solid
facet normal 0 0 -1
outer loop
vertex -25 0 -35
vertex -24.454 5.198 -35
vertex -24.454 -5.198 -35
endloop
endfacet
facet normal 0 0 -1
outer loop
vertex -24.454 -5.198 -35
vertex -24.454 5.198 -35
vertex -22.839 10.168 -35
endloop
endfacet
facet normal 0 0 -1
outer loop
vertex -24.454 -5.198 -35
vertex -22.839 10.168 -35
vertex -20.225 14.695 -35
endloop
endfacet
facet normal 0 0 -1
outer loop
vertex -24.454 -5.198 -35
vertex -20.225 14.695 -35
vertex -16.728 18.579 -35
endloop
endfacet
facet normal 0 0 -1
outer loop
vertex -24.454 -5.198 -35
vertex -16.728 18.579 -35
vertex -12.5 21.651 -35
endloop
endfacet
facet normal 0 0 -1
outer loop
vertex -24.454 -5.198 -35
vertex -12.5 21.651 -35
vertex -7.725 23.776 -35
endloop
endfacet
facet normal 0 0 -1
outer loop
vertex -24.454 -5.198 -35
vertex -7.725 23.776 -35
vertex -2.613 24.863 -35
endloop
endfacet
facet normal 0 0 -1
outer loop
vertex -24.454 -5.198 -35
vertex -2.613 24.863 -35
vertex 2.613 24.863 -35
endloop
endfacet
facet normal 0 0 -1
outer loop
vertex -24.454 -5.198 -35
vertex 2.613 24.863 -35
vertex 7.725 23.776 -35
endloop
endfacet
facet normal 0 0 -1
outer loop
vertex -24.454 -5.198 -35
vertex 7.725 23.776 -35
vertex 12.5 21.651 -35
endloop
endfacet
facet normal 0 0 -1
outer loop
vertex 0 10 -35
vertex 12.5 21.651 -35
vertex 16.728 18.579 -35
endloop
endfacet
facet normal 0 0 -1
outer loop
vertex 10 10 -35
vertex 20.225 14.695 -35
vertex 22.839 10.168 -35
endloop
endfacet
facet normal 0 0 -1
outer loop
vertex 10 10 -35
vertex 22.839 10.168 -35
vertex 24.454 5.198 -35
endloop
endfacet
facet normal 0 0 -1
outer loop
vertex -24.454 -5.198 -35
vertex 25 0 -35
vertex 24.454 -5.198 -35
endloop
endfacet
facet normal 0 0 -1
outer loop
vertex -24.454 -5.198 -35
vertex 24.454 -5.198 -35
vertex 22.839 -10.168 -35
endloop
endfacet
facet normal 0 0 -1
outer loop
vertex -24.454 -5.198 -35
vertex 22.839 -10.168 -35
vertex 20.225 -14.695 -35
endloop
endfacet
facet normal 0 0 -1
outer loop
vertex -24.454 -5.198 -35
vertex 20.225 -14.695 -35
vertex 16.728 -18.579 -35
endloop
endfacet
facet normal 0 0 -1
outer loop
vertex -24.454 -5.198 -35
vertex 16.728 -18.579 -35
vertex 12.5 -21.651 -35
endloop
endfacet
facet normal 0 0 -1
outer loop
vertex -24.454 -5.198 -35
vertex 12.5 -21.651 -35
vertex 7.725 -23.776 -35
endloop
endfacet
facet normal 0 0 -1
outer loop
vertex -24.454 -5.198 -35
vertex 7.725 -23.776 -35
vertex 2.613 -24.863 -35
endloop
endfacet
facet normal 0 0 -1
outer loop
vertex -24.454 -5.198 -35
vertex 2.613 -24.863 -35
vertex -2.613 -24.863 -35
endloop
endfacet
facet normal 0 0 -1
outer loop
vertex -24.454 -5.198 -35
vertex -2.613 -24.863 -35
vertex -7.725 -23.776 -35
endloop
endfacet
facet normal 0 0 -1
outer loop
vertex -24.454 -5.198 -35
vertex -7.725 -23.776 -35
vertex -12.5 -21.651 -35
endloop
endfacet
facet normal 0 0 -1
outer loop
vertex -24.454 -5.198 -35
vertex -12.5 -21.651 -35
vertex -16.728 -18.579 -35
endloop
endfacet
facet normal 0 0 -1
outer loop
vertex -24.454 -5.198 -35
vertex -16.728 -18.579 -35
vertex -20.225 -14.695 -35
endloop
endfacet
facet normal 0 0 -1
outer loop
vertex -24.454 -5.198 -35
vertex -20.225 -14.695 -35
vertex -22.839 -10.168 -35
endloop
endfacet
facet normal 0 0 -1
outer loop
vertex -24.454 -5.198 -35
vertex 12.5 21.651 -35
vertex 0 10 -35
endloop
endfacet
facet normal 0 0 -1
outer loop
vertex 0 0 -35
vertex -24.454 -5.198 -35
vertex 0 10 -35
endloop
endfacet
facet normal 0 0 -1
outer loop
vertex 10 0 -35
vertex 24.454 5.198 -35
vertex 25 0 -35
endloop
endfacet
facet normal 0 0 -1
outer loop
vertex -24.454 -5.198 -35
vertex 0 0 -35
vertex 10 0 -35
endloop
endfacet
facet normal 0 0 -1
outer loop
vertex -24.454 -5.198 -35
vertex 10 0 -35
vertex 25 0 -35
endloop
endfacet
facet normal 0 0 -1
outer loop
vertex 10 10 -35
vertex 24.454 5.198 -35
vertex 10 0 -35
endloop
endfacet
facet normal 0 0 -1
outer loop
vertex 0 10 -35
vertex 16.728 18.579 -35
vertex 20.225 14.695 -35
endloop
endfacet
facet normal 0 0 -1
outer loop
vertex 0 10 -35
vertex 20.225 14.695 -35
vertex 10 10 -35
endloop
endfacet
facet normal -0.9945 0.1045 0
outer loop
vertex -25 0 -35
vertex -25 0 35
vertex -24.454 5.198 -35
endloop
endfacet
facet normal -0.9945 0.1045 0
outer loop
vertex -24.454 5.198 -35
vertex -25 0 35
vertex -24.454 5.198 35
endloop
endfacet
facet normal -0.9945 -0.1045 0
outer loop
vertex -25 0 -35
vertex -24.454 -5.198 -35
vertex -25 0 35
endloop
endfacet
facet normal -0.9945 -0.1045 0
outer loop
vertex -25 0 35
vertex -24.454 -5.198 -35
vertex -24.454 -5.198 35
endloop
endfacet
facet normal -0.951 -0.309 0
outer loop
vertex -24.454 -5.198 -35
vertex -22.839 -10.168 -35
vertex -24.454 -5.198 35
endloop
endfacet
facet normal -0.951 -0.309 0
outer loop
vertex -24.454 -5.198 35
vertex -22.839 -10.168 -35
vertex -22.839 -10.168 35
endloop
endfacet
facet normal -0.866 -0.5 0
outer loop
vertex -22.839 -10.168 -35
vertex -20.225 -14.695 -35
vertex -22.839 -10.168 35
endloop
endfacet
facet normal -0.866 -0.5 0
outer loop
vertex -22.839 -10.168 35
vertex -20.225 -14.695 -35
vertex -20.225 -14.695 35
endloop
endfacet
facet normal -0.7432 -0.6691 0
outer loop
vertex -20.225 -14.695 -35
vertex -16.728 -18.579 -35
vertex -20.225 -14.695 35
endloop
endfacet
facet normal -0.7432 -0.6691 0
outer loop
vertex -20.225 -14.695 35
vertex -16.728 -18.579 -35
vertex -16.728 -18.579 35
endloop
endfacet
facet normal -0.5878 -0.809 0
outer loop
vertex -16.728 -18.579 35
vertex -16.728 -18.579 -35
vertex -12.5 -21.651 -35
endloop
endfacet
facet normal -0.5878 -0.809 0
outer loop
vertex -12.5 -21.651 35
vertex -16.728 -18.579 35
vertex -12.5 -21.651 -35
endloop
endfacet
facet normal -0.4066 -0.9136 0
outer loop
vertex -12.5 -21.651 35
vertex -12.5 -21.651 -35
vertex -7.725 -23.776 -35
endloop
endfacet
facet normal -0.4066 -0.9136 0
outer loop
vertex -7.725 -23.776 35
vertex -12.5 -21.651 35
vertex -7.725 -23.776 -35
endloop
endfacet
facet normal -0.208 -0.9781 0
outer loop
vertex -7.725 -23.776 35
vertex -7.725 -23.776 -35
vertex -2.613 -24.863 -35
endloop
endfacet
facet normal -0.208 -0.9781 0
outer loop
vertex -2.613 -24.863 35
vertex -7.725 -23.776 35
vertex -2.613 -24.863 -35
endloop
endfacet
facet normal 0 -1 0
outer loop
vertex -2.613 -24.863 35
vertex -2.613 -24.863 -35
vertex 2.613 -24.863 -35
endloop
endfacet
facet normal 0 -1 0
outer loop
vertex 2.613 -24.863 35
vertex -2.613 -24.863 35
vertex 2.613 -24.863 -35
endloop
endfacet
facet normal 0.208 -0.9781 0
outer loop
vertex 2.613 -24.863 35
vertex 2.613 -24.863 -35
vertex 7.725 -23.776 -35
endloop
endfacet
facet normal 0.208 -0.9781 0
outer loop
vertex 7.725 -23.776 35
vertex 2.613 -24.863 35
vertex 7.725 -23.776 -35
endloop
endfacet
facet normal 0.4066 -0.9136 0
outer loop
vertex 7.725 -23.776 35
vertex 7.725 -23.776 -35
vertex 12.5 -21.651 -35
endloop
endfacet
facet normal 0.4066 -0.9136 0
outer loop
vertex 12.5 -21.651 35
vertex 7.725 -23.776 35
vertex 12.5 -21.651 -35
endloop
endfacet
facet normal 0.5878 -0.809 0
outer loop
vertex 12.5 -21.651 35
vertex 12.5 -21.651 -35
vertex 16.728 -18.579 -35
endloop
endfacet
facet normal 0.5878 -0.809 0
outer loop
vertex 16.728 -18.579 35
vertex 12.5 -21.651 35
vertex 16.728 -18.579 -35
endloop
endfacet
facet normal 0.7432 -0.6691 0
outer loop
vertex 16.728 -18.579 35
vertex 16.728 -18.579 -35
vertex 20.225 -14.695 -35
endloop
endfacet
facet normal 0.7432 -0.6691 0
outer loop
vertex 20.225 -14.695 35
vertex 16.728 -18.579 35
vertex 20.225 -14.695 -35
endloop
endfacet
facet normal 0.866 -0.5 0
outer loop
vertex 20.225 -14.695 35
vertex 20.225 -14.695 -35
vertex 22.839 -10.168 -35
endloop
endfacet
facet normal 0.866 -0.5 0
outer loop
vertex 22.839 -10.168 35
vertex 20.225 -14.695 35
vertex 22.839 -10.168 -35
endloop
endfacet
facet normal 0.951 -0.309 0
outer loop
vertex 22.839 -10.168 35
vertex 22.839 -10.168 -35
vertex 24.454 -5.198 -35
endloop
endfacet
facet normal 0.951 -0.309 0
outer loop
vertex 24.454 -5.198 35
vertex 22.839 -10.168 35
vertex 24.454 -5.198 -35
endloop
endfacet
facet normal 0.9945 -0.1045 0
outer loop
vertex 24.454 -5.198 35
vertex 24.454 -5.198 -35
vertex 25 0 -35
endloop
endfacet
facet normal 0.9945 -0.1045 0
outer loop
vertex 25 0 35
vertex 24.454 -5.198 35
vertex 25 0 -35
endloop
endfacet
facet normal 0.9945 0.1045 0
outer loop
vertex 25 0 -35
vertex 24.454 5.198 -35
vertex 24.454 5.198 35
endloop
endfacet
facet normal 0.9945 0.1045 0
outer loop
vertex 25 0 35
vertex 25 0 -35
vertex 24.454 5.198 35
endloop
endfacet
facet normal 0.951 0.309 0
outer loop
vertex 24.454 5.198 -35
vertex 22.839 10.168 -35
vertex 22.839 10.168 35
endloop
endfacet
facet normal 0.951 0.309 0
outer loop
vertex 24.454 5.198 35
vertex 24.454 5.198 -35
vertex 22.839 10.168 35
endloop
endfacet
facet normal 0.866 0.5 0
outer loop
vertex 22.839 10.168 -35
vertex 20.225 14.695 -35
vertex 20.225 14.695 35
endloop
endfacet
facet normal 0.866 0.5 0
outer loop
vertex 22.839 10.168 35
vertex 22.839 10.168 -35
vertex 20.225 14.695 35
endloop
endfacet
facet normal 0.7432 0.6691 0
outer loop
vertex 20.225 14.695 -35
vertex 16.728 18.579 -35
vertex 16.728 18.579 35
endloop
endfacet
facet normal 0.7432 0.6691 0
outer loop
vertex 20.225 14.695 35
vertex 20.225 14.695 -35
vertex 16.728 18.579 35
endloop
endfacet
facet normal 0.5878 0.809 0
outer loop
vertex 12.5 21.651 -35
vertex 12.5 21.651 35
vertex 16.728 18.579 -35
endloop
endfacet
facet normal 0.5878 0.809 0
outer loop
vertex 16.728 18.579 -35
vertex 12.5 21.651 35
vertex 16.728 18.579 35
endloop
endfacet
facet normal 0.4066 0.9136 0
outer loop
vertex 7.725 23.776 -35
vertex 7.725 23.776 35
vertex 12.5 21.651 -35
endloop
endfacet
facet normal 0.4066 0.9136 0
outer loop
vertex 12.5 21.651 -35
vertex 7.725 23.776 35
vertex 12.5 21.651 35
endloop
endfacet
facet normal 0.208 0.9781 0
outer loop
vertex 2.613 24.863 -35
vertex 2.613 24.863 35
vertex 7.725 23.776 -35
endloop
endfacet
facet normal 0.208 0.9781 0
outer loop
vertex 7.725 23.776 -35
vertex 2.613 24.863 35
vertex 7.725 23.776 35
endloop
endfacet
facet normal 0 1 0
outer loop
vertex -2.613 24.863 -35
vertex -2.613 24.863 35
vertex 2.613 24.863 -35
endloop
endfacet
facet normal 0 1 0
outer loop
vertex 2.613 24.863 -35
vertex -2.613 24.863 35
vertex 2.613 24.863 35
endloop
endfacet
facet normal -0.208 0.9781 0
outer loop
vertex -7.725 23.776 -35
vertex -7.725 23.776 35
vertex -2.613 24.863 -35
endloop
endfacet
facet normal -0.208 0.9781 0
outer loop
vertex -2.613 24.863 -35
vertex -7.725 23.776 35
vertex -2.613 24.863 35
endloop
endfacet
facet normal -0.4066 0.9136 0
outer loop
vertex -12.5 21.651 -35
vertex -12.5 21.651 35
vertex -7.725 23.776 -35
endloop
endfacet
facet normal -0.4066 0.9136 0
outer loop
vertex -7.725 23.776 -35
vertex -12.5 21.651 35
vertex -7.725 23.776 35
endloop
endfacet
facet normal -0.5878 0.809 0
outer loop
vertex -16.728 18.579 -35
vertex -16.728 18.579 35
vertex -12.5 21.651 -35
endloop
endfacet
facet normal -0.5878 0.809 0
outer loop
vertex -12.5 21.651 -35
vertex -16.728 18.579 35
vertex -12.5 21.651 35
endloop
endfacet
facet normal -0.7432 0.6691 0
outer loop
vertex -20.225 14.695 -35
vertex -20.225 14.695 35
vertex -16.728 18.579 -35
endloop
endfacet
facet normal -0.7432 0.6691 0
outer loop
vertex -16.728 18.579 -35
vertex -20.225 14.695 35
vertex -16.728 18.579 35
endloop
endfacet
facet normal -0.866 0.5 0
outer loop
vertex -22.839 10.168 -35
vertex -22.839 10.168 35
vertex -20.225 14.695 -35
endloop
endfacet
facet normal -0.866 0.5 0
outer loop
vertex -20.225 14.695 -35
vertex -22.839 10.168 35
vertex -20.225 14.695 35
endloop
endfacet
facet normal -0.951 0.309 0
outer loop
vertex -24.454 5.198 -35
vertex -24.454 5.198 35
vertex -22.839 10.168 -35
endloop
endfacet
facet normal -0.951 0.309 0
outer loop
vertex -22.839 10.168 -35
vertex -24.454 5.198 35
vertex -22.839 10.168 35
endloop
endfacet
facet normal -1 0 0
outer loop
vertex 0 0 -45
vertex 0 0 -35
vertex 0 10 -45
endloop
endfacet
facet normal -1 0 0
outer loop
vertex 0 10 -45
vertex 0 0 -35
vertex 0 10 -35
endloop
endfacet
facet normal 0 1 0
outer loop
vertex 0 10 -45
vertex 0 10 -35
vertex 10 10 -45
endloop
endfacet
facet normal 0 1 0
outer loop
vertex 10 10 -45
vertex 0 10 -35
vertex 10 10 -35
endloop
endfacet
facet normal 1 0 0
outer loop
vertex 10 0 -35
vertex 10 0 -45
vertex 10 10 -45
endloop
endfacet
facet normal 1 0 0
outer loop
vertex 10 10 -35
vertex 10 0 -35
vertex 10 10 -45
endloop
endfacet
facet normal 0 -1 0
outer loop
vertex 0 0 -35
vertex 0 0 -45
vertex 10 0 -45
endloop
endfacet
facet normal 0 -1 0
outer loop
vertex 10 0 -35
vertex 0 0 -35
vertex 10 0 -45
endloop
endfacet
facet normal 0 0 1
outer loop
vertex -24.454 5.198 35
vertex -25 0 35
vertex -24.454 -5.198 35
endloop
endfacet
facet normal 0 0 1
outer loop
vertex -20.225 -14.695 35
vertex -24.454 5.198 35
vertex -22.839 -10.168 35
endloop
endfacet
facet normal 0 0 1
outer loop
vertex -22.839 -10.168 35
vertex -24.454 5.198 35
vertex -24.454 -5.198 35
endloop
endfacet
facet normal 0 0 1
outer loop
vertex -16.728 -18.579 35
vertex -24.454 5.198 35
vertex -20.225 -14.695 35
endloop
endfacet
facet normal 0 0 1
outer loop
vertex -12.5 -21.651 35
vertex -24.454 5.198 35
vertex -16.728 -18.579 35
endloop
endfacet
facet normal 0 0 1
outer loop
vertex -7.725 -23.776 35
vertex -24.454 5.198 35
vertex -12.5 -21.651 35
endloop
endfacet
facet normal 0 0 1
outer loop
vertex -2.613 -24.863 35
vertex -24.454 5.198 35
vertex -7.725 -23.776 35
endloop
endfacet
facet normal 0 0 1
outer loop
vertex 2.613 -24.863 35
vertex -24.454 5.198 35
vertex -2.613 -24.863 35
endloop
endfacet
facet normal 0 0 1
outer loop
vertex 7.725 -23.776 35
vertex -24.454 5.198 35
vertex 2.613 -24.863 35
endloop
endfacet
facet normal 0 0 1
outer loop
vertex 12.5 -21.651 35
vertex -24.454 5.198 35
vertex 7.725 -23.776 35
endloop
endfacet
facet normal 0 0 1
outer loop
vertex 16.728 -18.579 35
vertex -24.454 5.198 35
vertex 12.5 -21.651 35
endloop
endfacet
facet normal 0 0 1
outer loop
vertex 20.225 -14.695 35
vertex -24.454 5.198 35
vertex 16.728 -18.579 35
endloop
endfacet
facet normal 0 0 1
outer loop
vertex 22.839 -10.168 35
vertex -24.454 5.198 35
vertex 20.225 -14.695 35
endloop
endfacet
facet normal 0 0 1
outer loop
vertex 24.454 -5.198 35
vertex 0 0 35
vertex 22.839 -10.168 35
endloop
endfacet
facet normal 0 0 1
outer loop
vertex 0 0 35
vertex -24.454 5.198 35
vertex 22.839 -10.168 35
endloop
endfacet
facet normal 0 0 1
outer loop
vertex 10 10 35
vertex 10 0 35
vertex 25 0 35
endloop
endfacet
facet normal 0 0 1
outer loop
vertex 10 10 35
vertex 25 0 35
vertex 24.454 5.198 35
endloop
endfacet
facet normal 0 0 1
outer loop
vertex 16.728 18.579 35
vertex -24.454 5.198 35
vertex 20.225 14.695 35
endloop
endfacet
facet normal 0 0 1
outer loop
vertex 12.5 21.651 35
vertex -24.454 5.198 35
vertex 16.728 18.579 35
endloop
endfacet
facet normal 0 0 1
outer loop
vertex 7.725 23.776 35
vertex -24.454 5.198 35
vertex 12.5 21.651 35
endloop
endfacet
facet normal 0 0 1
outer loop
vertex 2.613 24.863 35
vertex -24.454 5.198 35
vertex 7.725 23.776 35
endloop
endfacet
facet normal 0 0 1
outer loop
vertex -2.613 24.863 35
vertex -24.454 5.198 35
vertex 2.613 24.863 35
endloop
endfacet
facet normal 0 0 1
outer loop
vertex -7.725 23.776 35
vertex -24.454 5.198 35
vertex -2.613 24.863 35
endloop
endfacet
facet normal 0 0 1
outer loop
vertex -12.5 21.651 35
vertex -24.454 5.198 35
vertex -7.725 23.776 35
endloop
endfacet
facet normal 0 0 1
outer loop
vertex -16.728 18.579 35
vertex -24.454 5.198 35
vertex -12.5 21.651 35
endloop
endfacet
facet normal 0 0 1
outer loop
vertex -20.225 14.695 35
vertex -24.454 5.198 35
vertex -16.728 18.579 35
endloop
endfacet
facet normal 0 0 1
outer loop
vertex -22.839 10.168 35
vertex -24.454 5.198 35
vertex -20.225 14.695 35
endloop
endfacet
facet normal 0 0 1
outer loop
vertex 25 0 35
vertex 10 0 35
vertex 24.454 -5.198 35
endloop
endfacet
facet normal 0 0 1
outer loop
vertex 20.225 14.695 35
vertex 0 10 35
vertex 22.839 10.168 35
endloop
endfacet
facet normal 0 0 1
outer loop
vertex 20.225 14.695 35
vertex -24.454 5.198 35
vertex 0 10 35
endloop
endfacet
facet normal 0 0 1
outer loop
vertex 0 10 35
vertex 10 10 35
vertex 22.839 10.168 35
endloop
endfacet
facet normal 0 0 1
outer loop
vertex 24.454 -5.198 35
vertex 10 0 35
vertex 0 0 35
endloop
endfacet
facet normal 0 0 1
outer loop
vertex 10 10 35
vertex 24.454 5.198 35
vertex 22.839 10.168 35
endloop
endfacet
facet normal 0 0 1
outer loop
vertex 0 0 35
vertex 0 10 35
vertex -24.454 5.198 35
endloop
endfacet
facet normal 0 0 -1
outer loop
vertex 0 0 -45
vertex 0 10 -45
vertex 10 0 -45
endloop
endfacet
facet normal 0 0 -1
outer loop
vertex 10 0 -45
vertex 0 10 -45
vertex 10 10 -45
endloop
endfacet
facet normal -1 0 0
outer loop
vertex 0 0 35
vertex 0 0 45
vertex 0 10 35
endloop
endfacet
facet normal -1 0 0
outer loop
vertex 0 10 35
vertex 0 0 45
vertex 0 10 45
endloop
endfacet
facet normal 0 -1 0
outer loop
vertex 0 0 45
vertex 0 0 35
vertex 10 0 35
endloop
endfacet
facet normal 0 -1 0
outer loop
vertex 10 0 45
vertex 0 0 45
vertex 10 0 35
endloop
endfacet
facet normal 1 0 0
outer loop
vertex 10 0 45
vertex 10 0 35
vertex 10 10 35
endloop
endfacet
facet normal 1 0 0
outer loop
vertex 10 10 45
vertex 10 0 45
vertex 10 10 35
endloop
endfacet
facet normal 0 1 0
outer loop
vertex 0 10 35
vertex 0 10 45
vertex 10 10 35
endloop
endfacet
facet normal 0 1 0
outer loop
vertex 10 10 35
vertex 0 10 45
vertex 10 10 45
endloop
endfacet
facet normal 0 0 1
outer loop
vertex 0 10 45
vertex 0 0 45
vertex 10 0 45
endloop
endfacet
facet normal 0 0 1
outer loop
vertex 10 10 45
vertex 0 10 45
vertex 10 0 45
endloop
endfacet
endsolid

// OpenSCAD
//created by bloomlj 2014.09.20

module heng(){
	union() {
        	cylinder(h = 70, r1 = 25, r2 = 25, center = true);
		  translate([0,0,35]) 
        	cube(size = 10, center = false);
		  translate([0,0,-45]) 
        	cube(size = 10, center = false);
	}
}

heng();
